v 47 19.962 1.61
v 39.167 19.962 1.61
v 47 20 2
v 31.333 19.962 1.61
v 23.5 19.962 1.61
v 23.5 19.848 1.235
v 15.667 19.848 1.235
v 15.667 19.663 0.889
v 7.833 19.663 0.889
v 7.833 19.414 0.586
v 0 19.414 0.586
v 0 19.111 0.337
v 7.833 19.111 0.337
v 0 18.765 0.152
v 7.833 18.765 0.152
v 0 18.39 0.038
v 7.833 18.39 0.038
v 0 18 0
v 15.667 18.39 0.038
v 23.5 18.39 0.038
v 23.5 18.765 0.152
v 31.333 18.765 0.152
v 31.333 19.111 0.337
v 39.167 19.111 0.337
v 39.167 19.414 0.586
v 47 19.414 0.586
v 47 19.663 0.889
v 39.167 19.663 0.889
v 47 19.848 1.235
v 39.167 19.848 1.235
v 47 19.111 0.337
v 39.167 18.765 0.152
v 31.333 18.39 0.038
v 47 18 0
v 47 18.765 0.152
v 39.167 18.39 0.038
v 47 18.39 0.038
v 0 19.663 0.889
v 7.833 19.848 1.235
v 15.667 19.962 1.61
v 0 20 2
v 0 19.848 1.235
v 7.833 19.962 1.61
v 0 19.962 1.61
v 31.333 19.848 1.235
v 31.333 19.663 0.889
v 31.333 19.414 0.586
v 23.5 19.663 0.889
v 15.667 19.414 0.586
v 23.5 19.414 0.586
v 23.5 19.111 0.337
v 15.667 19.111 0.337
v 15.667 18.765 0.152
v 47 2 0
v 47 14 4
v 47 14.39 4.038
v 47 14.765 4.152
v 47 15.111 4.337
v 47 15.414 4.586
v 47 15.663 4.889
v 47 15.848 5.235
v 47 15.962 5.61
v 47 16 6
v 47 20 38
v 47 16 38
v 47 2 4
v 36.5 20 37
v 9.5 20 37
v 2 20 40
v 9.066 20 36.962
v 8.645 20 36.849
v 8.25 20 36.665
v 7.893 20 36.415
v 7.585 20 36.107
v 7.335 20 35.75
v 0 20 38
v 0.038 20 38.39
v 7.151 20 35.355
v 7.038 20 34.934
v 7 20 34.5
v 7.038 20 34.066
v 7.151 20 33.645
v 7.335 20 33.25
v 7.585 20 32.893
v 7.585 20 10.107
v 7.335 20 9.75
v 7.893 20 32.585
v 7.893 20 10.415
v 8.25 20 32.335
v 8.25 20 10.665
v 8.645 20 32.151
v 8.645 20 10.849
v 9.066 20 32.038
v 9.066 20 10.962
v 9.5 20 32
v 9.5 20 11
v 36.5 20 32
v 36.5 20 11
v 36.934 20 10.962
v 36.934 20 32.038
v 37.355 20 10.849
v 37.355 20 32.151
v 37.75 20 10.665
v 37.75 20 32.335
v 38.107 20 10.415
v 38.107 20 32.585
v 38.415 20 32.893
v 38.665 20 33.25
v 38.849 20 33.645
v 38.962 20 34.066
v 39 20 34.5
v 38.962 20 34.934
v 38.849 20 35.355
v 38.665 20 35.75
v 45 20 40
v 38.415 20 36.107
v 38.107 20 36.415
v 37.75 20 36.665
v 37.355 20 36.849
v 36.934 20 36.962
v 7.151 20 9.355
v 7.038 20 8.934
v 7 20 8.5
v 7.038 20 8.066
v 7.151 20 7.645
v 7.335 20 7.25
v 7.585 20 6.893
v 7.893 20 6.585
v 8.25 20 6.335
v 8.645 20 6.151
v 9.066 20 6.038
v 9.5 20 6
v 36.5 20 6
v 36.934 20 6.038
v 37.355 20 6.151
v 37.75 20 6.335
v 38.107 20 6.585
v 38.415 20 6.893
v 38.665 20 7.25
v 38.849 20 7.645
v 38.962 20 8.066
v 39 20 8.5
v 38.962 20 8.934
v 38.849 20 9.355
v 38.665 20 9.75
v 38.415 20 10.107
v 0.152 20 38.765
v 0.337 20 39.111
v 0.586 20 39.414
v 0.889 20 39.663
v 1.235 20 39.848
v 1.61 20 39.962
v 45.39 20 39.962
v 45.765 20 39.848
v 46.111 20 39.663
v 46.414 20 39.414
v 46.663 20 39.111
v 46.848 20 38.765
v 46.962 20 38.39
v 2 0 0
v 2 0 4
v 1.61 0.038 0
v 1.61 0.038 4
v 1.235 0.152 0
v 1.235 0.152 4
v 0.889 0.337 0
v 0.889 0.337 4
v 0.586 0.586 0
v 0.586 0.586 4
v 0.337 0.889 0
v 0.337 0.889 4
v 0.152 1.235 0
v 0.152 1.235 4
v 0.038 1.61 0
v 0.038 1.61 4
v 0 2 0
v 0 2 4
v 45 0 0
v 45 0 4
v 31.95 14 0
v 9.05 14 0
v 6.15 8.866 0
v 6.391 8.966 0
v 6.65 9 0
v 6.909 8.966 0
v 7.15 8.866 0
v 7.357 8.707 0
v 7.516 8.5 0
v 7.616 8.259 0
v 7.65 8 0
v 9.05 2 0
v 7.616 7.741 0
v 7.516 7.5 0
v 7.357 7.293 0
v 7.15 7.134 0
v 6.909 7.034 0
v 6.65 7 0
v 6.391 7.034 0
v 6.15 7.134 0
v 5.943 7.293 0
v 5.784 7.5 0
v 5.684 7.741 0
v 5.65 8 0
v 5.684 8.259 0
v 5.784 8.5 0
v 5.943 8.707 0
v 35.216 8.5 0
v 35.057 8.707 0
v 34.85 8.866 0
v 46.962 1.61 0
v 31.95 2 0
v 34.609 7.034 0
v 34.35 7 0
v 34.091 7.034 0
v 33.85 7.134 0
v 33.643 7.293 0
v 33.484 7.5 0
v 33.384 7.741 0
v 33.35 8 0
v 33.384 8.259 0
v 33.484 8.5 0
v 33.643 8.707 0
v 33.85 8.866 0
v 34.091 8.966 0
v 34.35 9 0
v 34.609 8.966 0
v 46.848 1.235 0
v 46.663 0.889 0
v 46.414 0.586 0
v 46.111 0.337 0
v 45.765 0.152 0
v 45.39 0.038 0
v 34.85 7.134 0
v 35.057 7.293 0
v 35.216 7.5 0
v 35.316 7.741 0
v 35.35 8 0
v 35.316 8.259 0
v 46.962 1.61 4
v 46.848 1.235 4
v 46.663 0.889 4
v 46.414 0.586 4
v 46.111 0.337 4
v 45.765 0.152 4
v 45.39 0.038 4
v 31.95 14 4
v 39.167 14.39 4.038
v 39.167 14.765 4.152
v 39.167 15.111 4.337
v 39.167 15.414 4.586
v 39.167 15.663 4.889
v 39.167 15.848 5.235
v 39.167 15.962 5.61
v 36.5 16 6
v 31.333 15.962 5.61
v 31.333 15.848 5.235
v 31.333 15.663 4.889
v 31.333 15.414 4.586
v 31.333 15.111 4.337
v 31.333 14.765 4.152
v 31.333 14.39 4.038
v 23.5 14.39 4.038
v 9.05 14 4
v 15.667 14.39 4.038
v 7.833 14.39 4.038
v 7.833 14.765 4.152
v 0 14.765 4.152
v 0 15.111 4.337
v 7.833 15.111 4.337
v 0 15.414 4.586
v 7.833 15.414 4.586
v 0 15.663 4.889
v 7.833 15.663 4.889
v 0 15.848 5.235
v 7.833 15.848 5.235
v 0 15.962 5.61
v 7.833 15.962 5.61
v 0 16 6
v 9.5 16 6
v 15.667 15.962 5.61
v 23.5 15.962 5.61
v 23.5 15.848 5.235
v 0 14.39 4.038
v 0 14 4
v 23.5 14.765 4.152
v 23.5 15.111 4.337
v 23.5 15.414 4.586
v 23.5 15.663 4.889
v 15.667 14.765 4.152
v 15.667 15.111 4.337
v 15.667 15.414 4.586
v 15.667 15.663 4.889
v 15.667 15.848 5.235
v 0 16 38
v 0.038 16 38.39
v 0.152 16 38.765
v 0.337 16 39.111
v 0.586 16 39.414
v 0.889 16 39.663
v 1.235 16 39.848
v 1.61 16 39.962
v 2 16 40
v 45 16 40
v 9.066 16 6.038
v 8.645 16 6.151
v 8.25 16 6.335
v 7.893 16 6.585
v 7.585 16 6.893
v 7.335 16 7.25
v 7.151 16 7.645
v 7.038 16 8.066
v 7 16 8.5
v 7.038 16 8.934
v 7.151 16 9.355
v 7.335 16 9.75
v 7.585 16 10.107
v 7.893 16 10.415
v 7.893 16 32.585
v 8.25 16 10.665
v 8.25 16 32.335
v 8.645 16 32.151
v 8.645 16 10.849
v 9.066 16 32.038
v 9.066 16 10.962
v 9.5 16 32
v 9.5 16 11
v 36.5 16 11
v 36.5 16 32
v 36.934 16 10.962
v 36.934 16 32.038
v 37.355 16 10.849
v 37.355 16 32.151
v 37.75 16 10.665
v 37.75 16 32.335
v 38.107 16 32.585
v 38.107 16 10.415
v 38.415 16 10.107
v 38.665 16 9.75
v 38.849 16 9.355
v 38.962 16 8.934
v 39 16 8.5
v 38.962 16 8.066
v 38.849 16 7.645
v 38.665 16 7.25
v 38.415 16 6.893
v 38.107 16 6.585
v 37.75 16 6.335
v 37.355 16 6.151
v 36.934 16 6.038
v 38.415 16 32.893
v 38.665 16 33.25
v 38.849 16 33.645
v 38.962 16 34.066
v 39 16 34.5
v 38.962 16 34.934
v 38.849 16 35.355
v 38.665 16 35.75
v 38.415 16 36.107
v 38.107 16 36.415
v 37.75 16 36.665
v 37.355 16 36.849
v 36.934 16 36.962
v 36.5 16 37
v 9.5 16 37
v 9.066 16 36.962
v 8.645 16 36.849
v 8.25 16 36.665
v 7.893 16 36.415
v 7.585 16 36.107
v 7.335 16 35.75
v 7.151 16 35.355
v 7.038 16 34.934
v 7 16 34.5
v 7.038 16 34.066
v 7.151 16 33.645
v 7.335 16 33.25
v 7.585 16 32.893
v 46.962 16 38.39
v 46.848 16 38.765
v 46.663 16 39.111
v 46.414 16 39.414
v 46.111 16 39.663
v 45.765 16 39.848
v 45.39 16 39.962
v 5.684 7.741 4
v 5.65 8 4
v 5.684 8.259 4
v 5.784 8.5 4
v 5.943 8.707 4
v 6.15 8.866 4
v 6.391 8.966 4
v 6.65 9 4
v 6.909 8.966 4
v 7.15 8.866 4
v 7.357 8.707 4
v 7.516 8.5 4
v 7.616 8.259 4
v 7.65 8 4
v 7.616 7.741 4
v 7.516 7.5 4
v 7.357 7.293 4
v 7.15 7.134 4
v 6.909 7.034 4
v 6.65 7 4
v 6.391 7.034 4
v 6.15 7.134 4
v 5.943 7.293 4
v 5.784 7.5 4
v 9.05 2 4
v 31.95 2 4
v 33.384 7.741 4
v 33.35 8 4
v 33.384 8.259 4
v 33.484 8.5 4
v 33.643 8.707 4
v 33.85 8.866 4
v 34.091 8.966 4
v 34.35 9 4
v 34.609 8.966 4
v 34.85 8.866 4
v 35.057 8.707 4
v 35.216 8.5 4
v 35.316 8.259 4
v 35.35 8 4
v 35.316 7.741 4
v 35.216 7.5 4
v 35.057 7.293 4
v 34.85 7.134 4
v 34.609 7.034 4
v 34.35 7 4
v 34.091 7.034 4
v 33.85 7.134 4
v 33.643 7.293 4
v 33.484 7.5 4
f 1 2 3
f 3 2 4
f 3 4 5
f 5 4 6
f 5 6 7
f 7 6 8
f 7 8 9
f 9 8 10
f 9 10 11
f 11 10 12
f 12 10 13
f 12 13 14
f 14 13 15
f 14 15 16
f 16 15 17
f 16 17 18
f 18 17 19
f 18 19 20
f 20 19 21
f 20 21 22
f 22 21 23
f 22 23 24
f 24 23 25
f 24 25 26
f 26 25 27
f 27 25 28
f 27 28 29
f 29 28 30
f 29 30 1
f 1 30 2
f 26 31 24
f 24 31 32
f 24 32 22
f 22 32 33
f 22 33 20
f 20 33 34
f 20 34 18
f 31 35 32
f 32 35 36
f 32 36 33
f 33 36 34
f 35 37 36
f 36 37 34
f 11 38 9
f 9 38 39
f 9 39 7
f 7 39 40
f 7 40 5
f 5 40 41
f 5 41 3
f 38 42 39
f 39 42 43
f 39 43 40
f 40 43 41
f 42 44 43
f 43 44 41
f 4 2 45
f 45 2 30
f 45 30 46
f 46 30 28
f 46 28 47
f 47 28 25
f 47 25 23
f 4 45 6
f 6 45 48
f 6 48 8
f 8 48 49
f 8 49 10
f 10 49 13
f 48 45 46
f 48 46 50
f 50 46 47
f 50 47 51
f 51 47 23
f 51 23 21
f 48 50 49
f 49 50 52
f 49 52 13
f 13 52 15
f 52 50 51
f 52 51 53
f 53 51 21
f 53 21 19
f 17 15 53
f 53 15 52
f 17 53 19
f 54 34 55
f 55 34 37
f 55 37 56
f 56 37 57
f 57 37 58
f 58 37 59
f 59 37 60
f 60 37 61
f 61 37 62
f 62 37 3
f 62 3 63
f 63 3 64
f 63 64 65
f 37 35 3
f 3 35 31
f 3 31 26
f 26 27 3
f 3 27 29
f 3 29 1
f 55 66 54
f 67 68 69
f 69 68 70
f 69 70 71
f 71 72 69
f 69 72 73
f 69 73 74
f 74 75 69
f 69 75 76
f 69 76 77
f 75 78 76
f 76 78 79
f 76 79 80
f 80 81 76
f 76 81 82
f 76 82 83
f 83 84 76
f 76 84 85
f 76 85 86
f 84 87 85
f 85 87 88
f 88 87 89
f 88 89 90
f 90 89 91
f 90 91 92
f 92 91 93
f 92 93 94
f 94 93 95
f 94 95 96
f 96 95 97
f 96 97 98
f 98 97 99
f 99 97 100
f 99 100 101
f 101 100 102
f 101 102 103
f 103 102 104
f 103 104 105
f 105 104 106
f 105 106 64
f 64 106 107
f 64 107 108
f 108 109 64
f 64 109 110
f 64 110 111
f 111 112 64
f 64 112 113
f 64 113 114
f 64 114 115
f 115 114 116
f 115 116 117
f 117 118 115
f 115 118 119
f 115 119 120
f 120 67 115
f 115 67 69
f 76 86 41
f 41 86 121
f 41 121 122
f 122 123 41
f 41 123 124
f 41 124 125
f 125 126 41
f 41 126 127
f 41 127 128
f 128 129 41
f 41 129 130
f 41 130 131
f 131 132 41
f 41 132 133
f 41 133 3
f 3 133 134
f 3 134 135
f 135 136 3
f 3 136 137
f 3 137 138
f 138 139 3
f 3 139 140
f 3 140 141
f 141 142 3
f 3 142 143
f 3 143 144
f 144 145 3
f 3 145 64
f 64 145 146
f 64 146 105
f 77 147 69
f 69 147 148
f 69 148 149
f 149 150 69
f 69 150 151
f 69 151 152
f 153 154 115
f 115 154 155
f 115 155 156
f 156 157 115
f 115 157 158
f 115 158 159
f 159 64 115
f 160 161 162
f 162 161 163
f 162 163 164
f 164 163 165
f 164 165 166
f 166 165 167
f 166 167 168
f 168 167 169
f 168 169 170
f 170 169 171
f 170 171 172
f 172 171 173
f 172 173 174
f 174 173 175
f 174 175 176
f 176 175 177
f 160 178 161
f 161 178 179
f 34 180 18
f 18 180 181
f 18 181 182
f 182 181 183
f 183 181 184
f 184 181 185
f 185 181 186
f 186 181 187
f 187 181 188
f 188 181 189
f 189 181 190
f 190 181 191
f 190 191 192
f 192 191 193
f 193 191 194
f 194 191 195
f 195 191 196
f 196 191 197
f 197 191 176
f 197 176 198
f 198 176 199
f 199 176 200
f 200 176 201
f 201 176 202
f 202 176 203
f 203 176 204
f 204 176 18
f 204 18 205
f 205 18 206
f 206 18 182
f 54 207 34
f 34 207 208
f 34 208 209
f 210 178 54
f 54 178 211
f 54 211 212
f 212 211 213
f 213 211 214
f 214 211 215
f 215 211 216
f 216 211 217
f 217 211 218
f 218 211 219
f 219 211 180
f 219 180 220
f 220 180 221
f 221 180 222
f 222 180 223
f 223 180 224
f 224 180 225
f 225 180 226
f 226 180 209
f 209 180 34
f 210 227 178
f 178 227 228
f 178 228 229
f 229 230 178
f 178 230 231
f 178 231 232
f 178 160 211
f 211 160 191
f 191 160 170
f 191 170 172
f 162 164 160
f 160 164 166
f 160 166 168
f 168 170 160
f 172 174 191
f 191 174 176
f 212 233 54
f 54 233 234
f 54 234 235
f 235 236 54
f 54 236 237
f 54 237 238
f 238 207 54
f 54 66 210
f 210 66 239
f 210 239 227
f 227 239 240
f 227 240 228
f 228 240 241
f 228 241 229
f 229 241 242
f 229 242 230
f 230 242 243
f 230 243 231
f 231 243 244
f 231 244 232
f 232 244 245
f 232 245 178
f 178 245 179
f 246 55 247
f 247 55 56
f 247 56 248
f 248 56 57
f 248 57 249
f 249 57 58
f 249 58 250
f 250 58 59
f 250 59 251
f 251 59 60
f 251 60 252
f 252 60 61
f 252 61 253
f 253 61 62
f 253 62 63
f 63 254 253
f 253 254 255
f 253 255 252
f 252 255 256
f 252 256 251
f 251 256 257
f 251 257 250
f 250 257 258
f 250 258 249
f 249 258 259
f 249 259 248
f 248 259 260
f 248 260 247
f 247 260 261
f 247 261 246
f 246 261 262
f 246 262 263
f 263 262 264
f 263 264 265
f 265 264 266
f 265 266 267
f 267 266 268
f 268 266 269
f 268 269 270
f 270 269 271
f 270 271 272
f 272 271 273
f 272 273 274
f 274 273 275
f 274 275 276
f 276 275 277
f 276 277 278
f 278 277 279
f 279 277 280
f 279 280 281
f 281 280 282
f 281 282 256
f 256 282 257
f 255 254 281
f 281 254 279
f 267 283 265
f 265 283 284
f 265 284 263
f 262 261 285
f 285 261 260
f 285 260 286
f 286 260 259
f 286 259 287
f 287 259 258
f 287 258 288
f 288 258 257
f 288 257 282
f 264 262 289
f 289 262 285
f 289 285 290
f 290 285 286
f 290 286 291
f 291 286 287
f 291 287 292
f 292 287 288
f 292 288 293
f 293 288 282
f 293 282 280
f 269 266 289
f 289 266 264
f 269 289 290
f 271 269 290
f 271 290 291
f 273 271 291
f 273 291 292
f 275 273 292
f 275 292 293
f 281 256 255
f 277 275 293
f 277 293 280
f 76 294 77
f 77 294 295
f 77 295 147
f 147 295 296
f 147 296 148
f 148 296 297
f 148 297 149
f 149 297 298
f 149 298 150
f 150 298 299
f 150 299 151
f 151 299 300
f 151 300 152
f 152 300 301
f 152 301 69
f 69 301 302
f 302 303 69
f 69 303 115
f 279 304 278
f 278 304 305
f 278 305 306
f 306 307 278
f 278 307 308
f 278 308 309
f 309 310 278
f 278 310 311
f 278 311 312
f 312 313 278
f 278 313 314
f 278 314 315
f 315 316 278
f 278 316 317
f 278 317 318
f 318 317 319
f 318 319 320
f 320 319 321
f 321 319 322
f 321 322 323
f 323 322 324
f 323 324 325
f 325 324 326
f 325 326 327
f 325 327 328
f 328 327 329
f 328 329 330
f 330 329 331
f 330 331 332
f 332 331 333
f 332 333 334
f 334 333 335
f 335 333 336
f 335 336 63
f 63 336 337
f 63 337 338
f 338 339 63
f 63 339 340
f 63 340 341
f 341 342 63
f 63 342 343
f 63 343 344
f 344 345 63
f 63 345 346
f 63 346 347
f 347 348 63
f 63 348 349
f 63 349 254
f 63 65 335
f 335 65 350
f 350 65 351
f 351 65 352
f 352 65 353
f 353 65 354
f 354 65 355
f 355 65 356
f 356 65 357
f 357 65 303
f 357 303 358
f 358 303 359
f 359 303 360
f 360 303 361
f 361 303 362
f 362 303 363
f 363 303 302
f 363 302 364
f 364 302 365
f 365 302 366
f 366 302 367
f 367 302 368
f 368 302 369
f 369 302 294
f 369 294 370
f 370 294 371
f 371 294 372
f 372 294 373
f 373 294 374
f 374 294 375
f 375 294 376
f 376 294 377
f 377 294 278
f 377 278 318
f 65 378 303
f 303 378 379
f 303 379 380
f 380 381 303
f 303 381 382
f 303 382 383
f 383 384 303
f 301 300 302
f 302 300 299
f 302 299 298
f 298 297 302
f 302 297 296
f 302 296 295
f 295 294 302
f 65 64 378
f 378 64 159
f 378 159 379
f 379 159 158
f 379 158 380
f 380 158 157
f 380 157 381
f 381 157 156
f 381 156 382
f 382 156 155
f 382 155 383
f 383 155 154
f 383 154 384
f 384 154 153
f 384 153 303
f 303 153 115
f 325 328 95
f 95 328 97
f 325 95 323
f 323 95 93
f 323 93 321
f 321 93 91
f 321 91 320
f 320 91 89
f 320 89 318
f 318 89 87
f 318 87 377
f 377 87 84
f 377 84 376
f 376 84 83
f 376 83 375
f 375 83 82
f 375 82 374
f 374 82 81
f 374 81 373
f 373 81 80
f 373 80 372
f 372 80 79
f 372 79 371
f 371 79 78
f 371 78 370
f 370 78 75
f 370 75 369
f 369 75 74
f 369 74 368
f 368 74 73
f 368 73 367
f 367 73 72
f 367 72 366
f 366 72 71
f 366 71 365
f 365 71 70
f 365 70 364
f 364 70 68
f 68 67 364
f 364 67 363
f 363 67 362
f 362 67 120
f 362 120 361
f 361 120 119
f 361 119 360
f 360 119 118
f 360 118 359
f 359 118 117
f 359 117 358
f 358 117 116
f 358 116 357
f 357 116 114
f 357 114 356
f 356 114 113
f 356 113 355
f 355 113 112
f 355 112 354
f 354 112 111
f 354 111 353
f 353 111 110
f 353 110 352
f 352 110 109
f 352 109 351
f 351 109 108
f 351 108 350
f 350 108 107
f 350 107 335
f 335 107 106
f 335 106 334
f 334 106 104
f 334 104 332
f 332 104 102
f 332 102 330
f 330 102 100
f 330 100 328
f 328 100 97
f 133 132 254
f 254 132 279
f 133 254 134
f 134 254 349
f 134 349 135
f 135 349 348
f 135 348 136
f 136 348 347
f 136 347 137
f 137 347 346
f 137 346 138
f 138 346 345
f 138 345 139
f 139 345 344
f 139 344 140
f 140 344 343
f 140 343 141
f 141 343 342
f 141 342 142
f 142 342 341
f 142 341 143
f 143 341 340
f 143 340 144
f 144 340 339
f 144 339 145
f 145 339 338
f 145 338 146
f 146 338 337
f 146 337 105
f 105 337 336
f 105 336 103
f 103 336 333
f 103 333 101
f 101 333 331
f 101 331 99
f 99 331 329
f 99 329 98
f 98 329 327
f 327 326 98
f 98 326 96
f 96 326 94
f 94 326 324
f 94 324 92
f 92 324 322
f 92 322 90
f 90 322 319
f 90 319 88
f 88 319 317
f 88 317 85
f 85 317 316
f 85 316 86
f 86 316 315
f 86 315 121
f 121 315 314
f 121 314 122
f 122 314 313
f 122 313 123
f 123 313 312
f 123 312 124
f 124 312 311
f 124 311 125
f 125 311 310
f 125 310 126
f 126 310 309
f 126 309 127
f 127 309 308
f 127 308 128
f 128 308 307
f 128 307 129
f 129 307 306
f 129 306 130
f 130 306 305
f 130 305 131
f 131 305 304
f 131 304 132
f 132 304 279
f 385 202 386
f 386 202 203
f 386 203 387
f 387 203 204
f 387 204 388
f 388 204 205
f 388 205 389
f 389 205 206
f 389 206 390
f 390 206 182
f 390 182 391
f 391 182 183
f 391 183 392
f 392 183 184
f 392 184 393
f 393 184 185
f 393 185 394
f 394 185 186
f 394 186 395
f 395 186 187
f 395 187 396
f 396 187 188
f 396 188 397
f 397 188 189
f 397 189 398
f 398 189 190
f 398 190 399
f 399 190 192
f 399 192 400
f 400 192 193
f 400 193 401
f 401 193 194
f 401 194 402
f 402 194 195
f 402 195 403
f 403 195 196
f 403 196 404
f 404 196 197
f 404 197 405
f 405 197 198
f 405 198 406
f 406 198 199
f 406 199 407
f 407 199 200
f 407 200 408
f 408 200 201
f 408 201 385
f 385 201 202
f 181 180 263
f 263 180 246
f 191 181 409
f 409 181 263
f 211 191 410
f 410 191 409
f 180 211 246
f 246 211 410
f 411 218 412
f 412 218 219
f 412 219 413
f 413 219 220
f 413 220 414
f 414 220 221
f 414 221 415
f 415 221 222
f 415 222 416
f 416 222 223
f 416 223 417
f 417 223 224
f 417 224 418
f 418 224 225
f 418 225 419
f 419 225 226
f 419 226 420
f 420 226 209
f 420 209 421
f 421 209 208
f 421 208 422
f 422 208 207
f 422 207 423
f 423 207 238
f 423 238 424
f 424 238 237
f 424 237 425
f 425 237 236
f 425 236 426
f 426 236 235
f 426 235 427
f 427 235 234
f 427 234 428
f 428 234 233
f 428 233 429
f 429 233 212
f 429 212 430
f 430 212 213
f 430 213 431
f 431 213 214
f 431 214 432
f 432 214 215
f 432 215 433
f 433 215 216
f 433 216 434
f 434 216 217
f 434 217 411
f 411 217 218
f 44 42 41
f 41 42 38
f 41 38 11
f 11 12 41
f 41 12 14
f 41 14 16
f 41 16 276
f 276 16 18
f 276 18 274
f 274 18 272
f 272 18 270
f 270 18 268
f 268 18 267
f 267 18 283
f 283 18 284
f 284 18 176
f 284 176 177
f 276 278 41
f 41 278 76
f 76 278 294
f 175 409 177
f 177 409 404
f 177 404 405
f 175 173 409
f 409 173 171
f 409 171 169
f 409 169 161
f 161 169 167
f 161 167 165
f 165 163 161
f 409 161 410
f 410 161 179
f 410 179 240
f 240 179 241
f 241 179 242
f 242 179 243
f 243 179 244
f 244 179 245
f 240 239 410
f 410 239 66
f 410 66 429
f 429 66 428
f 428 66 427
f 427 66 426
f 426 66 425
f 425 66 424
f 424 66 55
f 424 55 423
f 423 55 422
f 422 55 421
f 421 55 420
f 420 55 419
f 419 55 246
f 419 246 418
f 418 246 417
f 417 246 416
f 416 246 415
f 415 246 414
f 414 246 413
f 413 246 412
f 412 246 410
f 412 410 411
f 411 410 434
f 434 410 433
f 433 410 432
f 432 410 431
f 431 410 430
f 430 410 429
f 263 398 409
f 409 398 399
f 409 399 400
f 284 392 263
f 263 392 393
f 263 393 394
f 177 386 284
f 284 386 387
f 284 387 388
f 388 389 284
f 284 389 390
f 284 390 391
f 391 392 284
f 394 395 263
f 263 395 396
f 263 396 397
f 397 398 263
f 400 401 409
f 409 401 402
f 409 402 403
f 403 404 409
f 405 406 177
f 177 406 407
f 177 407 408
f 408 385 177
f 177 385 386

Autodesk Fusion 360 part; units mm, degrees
sketch "Sketch1" plane through (0, 0, 0) normal (0, 0, 1) x (1, 0, 0)
  line L0 (31.95, 2) -> (31.95, 14)
  line L1 (0, 20) -> (0, 0)
  line L2 (47, 0) -> (47, 20)
  line L3 (4.25, 2) -> (4.25, 14)
  line L4 (47, 16) -> (0, 16)
  line L5 (4.25, 14) -> (36.75, 14)
  line L6 (0, 16) -> (0, 20)
  line L7 (36.75, 14) -> (36.75, 2)
  line L8 (47, 20) -> (47, 16)
  line L9 (4.25, 14) -> (4.25, 2)
  line L10 (36.75, 2) -> (4.25, 2)
  line L11 (47, 20) -> (0, 20)
  line L12 (0, 0) -> (47, 0)
  circle A0 centre (34.35, 8) radius 1
  circle A1 centre (6.65, 8) radius 1
  line L13 (4.25, 2) -> (9.05, 2)
  line L14 (36.75, 14) -> (36.75, 2)
  line L15 (31.95, 14) -> (36.75, 14)
  line L16 (9.05, 14) -> (4.25, 14)
  line L17 (9.05, 2) -> (9.05, 14)
  line L18 (0, 20) -> (47, 20)
  line L19 (36.75, 2) -> (31.95, 2)
  dimension "d1" = 47
  dimension "d2" = 20
  dimension "d5" = 4
  dimension "d20" = 32.5
  dimension "d21" = 12
  dimension "d22" = 4.8
  dimension "d23" = 4.8
  dimension "d24" = 2
  dimension "d25" = 2
extrude "Extrude1" add sketch "Sketch1" along normal blind 4 contours L0 L5 L7 L10 L14 L15 L19 | L3 L5 L9 L10 L13 L16 L17 | L1 L2 L4 L12
extrude "Extrude2" add sketch "Sketch1" along normal blind 28 contours L1 L2 L4 L6 L8 L11 L18
extrude "Extrude3" add 1 faces at (15.6667, 18.6667, 28) along direction (0, 0, 1) blind 12
ref_plane "WorkPlane1" through (23.5, 18, 37) normal (0, 0, 1) x (1, 0, 0)
sketch "Sketch2" plane through (20, 18, 37) normal (0, 0, 1) x (1, 0, 0)
  line L0 (-13, -3) -> (19, -3)
  line L1 (19, -3) -> (19, 5)
  line L2 (19, 5) -> (-13, 5)
  line L3 (-13, 5) -> (-13, -3)
extrude "Extrude4" cut sketch "Sketch2" against normal blind 5
ref_plane "WorkPlane2" through (23, 18, 11) normal (0, 0, 1) x (1, 0, 0)
sketch "Sketch3" plane through (20, 18, 11) normal (0, 0, 1) x (1, 0, 0)
  line L0 (-13, -3) -> (19, -3)
  line L1 (19, -3) -> (19, 5)
  line L2 (19, 5) -> (-13, 5)
  line L3 (-13, 5) -> (-13, -3)
extrude "Extrude5" cut sketch "Sketch3" against normal blind 5
fillet "Fillet1" radius 2.5 8 edges at (7, 18, 6) (7, 18, 11) (39, 18, 11) (39, 18, 6) (39, 18, 32) (39, 18, 37) (7, 18, 37) (7, 18, 32)
fillet "Fillet2" radius 2 6 edges at (47, 18, 40) (0, 18, 40) (23.5, 16, 4) (47, 0, 2) (0, 0, 2) (23.5, 20, 0)
